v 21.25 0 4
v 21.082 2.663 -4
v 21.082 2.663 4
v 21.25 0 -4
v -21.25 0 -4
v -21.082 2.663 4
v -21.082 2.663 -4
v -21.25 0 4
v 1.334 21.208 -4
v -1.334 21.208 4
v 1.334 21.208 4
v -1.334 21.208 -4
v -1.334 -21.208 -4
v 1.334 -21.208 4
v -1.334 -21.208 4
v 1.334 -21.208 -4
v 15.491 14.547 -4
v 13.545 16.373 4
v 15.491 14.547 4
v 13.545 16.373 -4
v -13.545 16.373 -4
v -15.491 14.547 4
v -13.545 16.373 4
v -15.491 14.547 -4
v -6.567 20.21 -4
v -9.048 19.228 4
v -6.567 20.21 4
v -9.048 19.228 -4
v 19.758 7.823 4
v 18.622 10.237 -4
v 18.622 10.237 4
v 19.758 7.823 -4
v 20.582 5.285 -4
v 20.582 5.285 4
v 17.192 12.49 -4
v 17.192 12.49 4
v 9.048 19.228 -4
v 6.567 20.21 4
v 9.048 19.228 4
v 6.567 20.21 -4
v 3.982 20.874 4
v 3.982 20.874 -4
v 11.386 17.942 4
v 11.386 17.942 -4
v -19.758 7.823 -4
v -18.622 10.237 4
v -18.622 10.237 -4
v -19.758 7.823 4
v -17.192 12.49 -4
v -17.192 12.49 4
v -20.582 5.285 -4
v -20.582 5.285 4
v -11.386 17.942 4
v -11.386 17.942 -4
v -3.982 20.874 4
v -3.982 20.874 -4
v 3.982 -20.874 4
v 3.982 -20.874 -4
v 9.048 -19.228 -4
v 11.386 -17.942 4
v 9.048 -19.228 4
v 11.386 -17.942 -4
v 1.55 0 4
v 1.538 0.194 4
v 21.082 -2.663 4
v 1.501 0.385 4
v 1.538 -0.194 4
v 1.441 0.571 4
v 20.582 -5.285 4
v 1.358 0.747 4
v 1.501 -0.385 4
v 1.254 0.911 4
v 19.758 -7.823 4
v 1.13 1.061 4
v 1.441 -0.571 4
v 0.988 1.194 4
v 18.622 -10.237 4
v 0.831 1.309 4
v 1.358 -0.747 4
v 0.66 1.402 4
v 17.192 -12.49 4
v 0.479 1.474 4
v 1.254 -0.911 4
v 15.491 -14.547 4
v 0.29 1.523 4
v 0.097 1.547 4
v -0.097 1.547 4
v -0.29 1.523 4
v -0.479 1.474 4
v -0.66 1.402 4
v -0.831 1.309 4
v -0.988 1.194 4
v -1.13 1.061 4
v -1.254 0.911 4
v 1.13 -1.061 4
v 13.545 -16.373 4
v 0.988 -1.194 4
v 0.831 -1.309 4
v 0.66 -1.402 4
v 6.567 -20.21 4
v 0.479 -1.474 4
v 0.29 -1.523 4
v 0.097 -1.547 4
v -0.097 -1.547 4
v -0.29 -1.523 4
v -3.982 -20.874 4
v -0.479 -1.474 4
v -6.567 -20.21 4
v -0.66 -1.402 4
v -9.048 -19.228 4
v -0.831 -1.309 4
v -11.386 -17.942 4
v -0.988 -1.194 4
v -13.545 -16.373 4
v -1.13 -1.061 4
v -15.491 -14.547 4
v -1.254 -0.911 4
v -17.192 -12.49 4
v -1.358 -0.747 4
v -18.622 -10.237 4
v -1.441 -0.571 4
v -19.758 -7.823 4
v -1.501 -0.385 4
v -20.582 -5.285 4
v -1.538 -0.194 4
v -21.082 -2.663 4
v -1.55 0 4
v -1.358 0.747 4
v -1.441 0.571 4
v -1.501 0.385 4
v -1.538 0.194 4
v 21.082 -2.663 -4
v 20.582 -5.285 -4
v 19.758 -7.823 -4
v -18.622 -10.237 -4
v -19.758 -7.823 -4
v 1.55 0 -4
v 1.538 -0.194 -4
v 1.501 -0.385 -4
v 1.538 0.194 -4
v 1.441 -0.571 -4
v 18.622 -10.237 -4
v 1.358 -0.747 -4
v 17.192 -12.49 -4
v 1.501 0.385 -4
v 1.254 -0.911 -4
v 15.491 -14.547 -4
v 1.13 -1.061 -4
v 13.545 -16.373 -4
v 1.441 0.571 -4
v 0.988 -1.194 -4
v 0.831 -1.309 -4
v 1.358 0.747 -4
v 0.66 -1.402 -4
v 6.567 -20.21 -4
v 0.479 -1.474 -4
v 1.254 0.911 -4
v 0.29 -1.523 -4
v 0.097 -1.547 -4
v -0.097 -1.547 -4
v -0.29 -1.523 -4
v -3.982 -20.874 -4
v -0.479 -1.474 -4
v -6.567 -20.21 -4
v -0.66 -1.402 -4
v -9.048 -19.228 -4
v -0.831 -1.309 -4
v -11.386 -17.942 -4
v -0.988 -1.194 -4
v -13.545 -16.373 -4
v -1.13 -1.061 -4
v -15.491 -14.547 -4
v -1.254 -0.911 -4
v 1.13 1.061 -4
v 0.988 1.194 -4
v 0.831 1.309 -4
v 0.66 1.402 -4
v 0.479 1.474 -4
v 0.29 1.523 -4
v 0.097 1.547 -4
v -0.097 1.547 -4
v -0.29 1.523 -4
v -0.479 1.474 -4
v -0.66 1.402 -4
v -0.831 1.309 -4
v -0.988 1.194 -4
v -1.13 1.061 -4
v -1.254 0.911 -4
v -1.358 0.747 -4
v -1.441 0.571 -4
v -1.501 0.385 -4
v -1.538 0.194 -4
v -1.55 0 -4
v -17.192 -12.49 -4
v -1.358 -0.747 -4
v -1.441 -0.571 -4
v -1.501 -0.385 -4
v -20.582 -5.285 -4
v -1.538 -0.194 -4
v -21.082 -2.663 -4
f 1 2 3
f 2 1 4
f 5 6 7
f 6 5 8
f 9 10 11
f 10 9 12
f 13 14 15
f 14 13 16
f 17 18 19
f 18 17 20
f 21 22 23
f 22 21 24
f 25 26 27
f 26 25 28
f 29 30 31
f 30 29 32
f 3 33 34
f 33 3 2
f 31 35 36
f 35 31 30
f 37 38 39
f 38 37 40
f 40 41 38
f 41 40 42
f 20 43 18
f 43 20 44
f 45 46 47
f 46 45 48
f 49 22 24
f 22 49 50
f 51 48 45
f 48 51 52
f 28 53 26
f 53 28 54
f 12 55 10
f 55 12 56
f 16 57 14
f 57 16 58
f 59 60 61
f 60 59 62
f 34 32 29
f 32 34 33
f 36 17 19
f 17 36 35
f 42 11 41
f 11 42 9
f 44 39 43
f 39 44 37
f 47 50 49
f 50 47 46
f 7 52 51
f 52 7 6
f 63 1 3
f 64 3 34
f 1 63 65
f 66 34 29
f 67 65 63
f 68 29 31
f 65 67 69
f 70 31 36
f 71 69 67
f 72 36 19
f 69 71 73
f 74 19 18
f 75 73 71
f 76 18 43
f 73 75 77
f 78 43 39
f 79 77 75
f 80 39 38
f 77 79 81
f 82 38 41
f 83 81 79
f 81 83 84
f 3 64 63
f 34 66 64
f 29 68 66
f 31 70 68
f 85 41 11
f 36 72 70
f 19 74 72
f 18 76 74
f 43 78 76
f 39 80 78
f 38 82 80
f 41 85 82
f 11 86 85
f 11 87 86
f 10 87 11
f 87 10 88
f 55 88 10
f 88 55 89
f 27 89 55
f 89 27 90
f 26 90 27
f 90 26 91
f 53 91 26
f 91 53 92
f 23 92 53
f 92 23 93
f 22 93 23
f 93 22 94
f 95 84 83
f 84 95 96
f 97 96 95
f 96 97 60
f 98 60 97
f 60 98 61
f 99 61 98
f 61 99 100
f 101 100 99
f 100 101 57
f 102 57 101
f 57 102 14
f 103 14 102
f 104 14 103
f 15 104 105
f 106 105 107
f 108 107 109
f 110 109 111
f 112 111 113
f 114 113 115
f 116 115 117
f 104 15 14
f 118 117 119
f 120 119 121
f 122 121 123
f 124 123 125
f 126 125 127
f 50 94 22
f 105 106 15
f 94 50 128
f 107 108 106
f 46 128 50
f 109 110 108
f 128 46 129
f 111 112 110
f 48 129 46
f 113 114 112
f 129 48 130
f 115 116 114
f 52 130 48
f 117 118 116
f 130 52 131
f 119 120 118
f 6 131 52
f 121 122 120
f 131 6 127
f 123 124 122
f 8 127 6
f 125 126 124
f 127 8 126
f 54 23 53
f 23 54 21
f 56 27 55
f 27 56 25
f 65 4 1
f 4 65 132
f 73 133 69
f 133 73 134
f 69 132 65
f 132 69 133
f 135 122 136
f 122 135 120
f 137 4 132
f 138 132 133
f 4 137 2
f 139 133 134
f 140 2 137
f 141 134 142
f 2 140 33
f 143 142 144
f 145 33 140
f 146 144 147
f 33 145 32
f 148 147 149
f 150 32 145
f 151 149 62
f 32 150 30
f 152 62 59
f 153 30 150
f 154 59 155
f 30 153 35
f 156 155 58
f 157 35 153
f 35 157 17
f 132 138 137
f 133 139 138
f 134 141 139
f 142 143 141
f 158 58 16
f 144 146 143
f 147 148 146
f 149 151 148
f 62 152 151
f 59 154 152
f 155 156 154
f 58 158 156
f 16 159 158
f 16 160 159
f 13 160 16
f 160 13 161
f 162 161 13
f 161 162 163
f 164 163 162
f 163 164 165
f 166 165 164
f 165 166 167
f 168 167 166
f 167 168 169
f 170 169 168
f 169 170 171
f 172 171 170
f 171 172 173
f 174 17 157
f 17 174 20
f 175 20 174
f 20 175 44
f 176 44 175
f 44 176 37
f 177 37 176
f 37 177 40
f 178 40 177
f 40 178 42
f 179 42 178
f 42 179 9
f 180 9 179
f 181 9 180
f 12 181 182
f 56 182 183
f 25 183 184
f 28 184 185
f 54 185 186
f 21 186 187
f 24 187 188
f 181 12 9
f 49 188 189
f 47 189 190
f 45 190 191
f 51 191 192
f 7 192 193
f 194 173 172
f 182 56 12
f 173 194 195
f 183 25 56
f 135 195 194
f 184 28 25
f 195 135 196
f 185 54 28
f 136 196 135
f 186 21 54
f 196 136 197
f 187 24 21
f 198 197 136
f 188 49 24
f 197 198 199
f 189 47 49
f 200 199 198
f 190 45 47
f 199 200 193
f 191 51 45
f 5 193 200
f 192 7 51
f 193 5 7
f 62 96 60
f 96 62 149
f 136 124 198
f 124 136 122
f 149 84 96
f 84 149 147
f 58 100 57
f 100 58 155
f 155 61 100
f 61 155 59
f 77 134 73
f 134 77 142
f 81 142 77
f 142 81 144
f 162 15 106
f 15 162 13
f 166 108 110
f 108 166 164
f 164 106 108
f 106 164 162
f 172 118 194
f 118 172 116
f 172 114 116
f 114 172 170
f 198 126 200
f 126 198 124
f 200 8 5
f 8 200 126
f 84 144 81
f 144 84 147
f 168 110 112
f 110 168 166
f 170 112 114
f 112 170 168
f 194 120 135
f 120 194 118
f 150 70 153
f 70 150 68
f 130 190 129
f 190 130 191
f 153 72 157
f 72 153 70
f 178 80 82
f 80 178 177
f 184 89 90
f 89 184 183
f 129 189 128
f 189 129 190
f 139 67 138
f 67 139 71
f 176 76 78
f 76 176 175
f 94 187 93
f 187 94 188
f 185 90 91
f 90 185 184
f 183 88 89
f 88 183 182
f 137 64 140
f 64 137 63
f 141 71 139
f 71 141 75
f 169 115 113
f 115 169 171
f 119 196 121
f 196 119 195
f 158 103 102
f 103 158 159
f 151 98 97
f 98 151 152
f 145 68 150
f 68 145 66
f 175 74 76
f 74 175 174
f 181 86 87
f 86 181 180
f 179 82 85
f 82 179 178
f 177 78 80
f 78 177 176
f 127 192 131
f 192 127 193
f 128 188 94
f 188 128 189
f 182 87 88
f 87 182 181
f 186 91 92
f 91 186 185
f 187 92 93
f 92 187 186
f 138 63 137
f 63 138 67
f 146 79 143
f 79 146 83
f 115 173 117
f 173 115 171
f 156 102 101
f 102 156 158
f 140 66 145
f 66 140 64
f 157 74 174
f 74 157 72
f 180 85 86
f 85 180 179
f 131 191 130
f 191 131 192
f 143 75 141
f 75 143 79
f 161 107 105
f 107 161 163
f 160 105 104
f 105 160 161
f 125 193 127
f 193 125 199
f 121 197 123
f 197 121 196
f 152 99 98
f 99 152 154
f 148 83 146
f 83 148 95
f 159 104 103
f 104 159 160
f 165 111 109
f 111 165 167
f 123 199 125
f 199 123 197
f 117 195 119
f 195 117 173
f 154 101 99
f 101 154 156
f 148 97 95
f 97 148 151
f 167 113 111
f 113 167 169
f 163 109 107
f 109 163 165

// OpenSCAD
$fn = 50;


difference() {
	union() {
		translate(v = [0, 0, -4.0000000000]) {
			cylinder(h = 8, r = 21.2500000000);
		}
	}
	union() {
		translate(v = [0, 0, -100.0000000000]) {
			cylinder(h = 200, r = 1.5500000000);
		}
	}
}
